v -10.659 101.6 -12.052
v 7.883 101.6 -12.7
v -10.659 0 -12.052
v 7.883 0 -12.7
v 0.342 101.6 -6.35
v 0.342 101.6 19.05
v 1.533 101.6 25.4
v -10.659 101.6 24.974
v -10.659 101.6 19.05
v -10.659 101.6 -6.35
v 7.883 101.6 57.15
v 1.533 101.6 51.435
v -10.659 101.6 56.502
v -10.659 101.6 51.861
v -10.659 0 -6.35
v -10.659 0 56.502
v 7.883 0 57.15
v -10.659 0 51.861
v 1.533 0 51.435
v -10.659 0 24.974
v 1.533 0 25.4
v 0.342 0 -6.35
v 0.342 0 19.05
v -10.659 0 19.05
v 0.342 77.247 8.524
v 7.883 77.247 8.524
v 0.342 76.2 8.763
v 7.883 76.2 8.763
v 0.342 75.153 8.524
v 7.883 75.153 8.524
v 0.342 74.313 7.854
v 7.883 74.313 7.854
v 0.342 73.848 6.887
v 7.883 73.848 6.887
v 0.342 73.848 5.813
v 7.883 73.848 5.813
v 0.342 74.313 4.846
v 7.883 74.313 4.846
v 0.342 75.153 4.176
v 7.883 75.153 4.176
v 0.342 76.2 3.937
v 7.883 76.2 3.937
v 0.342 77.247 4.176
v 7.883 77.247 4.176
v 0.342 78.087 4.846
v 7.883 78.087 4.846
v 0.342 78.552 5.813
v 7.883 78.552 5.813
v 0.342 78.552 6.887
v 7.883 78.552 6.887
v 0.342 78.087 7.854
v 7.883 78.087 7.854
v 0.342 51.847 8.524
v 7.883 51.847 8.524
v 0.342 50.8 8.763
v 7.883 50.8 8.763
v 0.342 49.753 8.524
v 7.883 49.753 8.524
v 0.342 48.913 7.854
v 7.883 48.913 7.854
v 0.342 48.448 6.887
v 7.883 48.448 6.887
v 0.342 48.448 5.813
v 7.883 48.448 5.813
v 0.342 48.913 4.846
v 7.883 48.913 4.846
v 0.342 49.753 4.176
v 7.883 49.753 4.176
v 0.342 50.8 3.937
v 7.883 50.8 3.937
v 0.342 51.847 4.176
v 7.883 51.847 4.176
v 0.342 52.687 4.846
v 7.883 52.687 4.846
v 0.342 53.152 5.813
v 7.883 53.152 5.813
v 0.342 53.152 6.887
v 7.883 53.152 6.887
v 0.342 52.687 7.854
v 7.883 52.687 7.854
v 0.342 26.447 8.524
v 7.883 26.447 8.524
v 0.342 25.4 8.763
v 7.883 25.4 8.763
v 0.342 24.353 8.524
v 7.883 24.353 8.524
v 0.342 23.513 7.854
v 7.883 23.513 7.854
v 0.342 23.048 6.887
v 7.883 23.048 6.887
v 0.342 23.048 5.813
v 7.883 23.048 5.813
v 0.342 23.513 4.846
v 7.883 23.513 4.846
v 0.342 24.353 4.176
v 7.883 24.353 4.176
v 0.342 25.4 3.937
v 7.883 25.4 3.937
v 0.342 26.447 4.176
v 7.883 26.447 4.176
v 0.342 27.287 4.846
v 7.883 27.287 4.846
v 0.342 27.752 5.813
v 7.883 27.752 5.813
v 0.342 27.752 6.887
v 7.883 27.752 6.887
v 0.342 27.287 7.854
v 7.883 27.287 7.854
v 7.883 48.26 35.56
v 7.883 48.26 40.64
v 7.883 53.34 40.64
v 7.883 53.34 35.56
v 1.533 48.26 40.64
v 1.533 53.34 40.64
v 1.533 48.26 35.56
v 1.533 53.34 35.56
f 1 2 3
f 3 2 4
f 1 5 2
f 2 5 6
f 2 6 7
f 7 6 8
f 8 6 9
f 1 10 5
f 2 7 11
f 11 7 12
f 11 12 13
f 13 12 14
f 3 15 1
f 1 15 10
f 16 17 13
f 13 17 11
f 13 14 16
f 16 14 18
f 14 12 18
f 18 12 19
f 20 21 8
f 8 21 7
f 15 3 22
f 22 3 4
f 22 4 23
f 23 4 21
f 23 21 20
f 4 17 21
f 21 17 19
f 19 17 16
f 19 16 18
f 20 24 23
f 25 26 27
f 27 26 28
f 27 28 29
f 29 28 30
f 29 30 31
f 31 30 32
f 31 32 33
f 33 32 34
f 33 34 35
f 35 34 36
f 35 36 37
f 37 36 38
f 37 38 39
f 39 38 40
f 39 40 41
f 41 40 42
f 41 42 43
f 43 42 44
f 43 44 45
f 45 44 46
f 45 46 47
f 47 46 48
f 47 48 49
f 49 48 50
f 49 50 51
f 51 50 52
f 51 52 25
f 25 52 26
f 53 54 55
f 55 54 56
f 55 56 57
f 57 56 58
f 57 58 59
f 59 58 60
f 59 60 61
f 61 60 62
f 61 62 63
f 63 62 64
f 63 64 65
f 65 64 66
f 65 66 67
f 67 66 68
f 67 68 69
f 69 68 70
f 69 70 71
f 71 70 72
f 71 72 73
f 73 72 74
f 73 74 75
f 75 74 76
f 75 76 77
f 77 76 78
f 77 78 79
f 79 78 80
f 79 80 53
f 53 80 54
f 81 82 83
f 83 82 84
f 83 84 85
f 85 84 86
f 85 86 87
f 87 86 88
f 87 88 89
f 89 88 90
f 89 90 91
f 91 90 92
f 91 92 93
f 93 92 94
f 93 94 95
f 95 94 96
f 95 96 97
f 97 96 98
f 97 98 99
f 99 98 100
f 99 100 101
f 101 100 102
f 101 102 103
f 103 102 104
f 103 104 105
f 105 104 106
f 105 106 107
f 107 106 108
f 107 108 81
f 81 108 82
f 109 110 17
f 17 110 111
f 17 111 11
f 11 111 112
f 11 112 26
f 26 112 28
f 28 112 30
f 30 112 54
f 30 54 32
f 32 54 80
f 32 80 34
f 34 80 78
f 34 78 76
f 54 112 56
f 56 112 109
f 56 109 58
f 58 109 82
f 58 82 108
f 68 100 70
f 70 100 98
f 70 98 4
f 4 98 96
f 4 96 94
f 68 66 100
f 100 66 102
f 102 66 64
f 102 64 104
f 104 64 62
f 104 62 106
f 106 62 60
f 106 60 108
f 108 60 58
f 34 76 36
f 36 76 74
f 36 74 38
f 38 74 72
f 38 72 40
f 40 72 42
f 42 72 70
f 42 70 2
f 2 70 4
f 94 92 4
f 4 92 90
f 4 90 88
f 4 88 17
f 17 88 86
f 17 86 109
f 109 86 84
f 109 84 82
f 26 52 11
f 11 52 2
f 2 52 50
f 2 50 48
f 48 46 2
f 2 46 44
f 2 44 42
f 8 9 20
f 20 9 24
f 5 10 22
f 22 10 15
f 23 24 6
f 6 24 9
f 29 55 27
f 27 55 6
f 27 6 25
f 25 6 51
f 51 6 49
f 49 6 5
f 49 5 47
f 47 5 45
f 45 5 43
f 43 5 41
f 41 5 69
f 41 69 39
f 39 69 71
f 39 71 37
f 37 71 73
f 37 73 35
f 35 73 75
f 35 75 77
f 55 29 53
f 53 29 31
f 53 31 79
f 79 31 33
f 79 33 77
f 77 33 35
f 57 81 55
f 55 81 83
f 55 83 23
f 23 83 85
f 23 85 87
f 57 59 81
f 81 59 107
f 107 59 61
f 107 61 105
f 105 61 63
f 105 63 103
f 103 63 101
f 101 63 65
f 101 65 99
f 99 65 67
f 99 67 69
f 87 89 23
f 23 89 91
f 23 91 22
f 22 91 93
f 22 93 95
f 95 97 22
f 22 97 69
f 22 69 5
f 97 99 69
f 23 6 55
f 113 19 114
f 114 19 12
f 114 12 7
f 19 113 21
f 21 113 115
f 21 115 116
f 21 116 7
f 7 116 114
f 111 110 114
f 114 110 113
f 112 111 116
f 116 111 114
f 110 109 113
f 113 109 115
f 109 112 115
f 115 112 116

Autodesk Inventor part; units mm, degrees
ref_plane "YZ Plane" through (0, 0, 0) normal (1, 0, 0) x (0, 1, 0)
ref_plane "XZ Plane" through (0, 0, 0) normal (0, 1, 0) x (-1, 0, 0)
ref_plane "XY Plane" through (0, 0, 0) normal (0, 0, 1) x (1, 0, 0)
sketch "Sketch1" plane through (0, 0, 0) normal (0, 1, 0) x (-1, 0, 0)
  line L0 (10.6592, 57.15) -> (-7.8828, 57.15)
  line L1 (-7.8828, 57.15) -> (-7.8828, -12.7)
  line L2 (-7.8828, -12.7) -> (10.6592, -12.7)
  line L3 (10.6592, 51.435) -> (-1.5328, 51.435)
  line L4 (-1.5328, 51.435) -> (-1.5328, 25.4)
  line L5 (-1.5328, 25.4) -> (10.6592, 25.4)
  line L6 (10.6592, 19.05) -> (-1.5328, 19.05)
  line L7 (-1.5328, 19.05) -> (-1.5328, -6.35)
  line L8 (-1.5328, -6.35) -> (10.6592, -6.35)
  line L9 (10.6592, -12.7) -> (10.6592, -6.35)
  line L10 (10.6592, 19.05) -> (10.6592, 25.4)
  line L11 (10.6592, 51.435) -> (10.6592, 57.15)
  point P0 (0, 0)
  dimension "d0" = 18.542
  dimension "d3" = 6.35
  dimension "d4" = 6.35
  dimension "d5" = 5.715
  dimension "d7" = 0
  dimension "d8" = 26.035
  dimension "d9" = 25.4
  dimension "d25" = 0
  dimension "d26" = 0
extrude "Extrusion1" add sketch "Sketch1" along normal blind 101.6
sketch "Sketch2" plane through (1.5328, 0, -6.35) normal (-1, 0, 0) x (0, 0, 1)
  line L0 (0, 0) -> (0, 101.6) projected
  line L1 (0, 0) -> (25.4, 0) projected
  point P0 (6.35, 0)
  point P1 (12.7, 25.4)
  point P2 (12.7, 50.8)
  point P3 (12.7, 76.2)
  dimension "d12" = 12.7
  dimension "d13" = 25.4
  dimension "d14" = 25.4
  dimension "d15" = 0
  dimension "d16" = 0
  dimension "d17" = 25.4
hole "Hole1" at (1.5328, 25.4, 6.35) at (1.5328, 50.8, 6.35) at (1.5328, 76.2, 6.35) direction (1, 0, 0) diameter 4.826 depth 25.4 tip angle 118
sketch "Sketch3" plane through (0, 101.6, 0) normal (0, 1, 0) x (1, 0, 0)
  line L0 (1.5328, -25.4) -> (-10.7917, -24.9696)
  line L1 (-10.7917, -24.9696) -> (-10.7917, -25.4)
  line L2 (-10.6592, -25.4) -> (1.5328, -25.4) projected
  line L3 (-10.7917, -25.4) -> (1.5328, -25.4)
  point P0 (0, 0)
  dimension "d27" = 2
extrude "Extrusion2" cut sketch "Sketch3" against normal blind 111.125
sketch "Sketch4" plane through (0, 101.6, 0) normal (0, 1, 0) x (1, 0, 0)
  line L0 (1.5328, -51.435) -> (-12.9577, -51.435)
  line L1 (-12.9577, -51.435) -> (-12.9577, -51.941)
  line L2 (-12.9577, -51.941) -> (1.5328, -51.435)
  point P0 (0, 0)
  dimension "d30" = 2
extrude "Extrusion3" cut sketch "Sketch4" against normal blind 119.0625
sketch "Sketch5" plane through (0, 101.6, 0) normal (0, 1, 0) x (1, 0, 0)
  line L0 (-10.6592, -57.15) -> (7.8828, -57.15) projected
  line L1 (7.8828, -57.15) -> (-13.0423, -56.4193)
  line L2 (-13.0423, -56.4193) -> (-13.0009, -57.15)
  line L3 (-13.0009, -57.15) -> (7.8828, -57.15)
  point P0 (0, 0)
  dimension "d33" = 2
extrude "Extrusion4" cut sketch "Sketch5" against normal blind 196.85
sketch "Sketch6" plane through (0, 101.6, 0) normal (0, 1, 0) x (1, 0, 0)
  line L0 (7.8828, 12.7) -> (-10.6592, 12.7) projected
  line L1 (7.8828, 12.7) -> (-16.8119, 12.7)
  line L2 (-16.8119, 12.7) -> (-16.8119, 11.8376)
  line L3 (7.8828, -57.15) -> (7.8828, 12.7) projected
  line L4 (-16.8119, 11.8376) -> (7.8828, 12.7)
  point P0 (0, 0)
  dimension "d36" = 2
extrude "Extrusion5" cut sketch "Sketch6" against normal blind 334.9625
sketch "Sketch8" plane through (1.5328, 0, -6.35) normal (-1, 0, 0) x (0, 0, 1)
  line L0 (0, 0) -> (25.4, 0) projected
  circle A0 centre (12.7, 25.4) radius 2.413 projected
  circle A1 centre (12.7, 50.8) radius 2.413 projected
  circle A2 centre (12.7, 76.2) radius 2.413 projected
  line L1 (25.4, 0) -> (25.4, 101.6) projected
  line L2 (0, 0) -> (25.4, 0)
  line L3 (25.4, 0) -> (25.4, 101.6)
  line L4 (25.4, 101.6) -> (0, 101.6)
  line L5 (0, 101.6) -> (0, 0)
  circle A3 centre (12.7, 25.4) radius 2.413
  circle A4 centre (12.7, 50.8) radius 2.413
  circle A5 centre (12.7, 76.2) radius 2.413
  point P0 (6.35, 0)
extrude "Extrusion7" add sketch "Sketch8" along normal blind 1.1906
sketch "Sketch9" plane through (1.5328, 0, 25.4) normal (-1, 0, 0) x (0, 0, 1)
  line L0 (10.16, 48.26) -> (15.24, 48.26)
  line L1 (15.24, 48.26) -> (15.24, 53.34)
  line L2 (15.24, 53.34) -> (10.16, 53.34)
  line L3 (10.16, 53.34) -> (10.16, 48.26)
  line L4 (0, 101.6) -> (26.035, 101.6) projected
  line L5 (0, 0) -> (0, 101.6) projected
  point P0 (-25.4, 0)
  dimension "d43" = 5.08
  dimension "d44" = 5.08
  dimension "d45" = 48.26
  dimension "d46" = 10.16
extrude "Extrusion8" cut sketch "Sketch9" against normal blind 19.4469
equation "\"d0\" = ElvDelWidth"
equation "\"d3\" = ElvDelFrontTabLength"
equation "\"d4\" = ElvDelMiddleTabLength"
equation "\"d9\" = ElvBeamWidth"
equation "\"d10\" = ElvDelHeight"
equation "\"ElvBeamWidth\" = 25.4"
equation "\"ElvDelWidth\" = 18.542"
equation "\"ElvDelHeight\" = 101.6"
equation "\"ElvDelFrontTabLength\" = 6.35"
equation "\"ElvDelDepth\" = 6.35"
equation "\"d2\" = ElvDelDepth"
equation "\"ElvCrossBeamLength\" = 304.8"
equation "\"ElvFixedBeamLength\" = 990.6"
equation "\"ElvMiddleBeamLength\" = 990.6"
equation "\"ElvFrontBeamLength\" = 990.6"
equation "\"ElvEndEffectLength\" = 431.8"
equation "\"ElvWallWidth\" = 1.5875"
equation "\"ElvTopBeamLength\" = 457.2"
equation "\"ElvHoleFromFront\" = 25.4"
equation "\"ElvHoleFromMid\" = 38.1"
equation "\"ElvHoleFromFixed\" = 50.8"
equation "\"ElvHoleFromBottom\" = 38.1"
equation "\"ElvRivetPlateLength\" = 76.2"
equation "\"ElvDelMiddleTabLength\" = 6.35"
properties part number "ElvDelV4" material "Acetal Resin, White"
